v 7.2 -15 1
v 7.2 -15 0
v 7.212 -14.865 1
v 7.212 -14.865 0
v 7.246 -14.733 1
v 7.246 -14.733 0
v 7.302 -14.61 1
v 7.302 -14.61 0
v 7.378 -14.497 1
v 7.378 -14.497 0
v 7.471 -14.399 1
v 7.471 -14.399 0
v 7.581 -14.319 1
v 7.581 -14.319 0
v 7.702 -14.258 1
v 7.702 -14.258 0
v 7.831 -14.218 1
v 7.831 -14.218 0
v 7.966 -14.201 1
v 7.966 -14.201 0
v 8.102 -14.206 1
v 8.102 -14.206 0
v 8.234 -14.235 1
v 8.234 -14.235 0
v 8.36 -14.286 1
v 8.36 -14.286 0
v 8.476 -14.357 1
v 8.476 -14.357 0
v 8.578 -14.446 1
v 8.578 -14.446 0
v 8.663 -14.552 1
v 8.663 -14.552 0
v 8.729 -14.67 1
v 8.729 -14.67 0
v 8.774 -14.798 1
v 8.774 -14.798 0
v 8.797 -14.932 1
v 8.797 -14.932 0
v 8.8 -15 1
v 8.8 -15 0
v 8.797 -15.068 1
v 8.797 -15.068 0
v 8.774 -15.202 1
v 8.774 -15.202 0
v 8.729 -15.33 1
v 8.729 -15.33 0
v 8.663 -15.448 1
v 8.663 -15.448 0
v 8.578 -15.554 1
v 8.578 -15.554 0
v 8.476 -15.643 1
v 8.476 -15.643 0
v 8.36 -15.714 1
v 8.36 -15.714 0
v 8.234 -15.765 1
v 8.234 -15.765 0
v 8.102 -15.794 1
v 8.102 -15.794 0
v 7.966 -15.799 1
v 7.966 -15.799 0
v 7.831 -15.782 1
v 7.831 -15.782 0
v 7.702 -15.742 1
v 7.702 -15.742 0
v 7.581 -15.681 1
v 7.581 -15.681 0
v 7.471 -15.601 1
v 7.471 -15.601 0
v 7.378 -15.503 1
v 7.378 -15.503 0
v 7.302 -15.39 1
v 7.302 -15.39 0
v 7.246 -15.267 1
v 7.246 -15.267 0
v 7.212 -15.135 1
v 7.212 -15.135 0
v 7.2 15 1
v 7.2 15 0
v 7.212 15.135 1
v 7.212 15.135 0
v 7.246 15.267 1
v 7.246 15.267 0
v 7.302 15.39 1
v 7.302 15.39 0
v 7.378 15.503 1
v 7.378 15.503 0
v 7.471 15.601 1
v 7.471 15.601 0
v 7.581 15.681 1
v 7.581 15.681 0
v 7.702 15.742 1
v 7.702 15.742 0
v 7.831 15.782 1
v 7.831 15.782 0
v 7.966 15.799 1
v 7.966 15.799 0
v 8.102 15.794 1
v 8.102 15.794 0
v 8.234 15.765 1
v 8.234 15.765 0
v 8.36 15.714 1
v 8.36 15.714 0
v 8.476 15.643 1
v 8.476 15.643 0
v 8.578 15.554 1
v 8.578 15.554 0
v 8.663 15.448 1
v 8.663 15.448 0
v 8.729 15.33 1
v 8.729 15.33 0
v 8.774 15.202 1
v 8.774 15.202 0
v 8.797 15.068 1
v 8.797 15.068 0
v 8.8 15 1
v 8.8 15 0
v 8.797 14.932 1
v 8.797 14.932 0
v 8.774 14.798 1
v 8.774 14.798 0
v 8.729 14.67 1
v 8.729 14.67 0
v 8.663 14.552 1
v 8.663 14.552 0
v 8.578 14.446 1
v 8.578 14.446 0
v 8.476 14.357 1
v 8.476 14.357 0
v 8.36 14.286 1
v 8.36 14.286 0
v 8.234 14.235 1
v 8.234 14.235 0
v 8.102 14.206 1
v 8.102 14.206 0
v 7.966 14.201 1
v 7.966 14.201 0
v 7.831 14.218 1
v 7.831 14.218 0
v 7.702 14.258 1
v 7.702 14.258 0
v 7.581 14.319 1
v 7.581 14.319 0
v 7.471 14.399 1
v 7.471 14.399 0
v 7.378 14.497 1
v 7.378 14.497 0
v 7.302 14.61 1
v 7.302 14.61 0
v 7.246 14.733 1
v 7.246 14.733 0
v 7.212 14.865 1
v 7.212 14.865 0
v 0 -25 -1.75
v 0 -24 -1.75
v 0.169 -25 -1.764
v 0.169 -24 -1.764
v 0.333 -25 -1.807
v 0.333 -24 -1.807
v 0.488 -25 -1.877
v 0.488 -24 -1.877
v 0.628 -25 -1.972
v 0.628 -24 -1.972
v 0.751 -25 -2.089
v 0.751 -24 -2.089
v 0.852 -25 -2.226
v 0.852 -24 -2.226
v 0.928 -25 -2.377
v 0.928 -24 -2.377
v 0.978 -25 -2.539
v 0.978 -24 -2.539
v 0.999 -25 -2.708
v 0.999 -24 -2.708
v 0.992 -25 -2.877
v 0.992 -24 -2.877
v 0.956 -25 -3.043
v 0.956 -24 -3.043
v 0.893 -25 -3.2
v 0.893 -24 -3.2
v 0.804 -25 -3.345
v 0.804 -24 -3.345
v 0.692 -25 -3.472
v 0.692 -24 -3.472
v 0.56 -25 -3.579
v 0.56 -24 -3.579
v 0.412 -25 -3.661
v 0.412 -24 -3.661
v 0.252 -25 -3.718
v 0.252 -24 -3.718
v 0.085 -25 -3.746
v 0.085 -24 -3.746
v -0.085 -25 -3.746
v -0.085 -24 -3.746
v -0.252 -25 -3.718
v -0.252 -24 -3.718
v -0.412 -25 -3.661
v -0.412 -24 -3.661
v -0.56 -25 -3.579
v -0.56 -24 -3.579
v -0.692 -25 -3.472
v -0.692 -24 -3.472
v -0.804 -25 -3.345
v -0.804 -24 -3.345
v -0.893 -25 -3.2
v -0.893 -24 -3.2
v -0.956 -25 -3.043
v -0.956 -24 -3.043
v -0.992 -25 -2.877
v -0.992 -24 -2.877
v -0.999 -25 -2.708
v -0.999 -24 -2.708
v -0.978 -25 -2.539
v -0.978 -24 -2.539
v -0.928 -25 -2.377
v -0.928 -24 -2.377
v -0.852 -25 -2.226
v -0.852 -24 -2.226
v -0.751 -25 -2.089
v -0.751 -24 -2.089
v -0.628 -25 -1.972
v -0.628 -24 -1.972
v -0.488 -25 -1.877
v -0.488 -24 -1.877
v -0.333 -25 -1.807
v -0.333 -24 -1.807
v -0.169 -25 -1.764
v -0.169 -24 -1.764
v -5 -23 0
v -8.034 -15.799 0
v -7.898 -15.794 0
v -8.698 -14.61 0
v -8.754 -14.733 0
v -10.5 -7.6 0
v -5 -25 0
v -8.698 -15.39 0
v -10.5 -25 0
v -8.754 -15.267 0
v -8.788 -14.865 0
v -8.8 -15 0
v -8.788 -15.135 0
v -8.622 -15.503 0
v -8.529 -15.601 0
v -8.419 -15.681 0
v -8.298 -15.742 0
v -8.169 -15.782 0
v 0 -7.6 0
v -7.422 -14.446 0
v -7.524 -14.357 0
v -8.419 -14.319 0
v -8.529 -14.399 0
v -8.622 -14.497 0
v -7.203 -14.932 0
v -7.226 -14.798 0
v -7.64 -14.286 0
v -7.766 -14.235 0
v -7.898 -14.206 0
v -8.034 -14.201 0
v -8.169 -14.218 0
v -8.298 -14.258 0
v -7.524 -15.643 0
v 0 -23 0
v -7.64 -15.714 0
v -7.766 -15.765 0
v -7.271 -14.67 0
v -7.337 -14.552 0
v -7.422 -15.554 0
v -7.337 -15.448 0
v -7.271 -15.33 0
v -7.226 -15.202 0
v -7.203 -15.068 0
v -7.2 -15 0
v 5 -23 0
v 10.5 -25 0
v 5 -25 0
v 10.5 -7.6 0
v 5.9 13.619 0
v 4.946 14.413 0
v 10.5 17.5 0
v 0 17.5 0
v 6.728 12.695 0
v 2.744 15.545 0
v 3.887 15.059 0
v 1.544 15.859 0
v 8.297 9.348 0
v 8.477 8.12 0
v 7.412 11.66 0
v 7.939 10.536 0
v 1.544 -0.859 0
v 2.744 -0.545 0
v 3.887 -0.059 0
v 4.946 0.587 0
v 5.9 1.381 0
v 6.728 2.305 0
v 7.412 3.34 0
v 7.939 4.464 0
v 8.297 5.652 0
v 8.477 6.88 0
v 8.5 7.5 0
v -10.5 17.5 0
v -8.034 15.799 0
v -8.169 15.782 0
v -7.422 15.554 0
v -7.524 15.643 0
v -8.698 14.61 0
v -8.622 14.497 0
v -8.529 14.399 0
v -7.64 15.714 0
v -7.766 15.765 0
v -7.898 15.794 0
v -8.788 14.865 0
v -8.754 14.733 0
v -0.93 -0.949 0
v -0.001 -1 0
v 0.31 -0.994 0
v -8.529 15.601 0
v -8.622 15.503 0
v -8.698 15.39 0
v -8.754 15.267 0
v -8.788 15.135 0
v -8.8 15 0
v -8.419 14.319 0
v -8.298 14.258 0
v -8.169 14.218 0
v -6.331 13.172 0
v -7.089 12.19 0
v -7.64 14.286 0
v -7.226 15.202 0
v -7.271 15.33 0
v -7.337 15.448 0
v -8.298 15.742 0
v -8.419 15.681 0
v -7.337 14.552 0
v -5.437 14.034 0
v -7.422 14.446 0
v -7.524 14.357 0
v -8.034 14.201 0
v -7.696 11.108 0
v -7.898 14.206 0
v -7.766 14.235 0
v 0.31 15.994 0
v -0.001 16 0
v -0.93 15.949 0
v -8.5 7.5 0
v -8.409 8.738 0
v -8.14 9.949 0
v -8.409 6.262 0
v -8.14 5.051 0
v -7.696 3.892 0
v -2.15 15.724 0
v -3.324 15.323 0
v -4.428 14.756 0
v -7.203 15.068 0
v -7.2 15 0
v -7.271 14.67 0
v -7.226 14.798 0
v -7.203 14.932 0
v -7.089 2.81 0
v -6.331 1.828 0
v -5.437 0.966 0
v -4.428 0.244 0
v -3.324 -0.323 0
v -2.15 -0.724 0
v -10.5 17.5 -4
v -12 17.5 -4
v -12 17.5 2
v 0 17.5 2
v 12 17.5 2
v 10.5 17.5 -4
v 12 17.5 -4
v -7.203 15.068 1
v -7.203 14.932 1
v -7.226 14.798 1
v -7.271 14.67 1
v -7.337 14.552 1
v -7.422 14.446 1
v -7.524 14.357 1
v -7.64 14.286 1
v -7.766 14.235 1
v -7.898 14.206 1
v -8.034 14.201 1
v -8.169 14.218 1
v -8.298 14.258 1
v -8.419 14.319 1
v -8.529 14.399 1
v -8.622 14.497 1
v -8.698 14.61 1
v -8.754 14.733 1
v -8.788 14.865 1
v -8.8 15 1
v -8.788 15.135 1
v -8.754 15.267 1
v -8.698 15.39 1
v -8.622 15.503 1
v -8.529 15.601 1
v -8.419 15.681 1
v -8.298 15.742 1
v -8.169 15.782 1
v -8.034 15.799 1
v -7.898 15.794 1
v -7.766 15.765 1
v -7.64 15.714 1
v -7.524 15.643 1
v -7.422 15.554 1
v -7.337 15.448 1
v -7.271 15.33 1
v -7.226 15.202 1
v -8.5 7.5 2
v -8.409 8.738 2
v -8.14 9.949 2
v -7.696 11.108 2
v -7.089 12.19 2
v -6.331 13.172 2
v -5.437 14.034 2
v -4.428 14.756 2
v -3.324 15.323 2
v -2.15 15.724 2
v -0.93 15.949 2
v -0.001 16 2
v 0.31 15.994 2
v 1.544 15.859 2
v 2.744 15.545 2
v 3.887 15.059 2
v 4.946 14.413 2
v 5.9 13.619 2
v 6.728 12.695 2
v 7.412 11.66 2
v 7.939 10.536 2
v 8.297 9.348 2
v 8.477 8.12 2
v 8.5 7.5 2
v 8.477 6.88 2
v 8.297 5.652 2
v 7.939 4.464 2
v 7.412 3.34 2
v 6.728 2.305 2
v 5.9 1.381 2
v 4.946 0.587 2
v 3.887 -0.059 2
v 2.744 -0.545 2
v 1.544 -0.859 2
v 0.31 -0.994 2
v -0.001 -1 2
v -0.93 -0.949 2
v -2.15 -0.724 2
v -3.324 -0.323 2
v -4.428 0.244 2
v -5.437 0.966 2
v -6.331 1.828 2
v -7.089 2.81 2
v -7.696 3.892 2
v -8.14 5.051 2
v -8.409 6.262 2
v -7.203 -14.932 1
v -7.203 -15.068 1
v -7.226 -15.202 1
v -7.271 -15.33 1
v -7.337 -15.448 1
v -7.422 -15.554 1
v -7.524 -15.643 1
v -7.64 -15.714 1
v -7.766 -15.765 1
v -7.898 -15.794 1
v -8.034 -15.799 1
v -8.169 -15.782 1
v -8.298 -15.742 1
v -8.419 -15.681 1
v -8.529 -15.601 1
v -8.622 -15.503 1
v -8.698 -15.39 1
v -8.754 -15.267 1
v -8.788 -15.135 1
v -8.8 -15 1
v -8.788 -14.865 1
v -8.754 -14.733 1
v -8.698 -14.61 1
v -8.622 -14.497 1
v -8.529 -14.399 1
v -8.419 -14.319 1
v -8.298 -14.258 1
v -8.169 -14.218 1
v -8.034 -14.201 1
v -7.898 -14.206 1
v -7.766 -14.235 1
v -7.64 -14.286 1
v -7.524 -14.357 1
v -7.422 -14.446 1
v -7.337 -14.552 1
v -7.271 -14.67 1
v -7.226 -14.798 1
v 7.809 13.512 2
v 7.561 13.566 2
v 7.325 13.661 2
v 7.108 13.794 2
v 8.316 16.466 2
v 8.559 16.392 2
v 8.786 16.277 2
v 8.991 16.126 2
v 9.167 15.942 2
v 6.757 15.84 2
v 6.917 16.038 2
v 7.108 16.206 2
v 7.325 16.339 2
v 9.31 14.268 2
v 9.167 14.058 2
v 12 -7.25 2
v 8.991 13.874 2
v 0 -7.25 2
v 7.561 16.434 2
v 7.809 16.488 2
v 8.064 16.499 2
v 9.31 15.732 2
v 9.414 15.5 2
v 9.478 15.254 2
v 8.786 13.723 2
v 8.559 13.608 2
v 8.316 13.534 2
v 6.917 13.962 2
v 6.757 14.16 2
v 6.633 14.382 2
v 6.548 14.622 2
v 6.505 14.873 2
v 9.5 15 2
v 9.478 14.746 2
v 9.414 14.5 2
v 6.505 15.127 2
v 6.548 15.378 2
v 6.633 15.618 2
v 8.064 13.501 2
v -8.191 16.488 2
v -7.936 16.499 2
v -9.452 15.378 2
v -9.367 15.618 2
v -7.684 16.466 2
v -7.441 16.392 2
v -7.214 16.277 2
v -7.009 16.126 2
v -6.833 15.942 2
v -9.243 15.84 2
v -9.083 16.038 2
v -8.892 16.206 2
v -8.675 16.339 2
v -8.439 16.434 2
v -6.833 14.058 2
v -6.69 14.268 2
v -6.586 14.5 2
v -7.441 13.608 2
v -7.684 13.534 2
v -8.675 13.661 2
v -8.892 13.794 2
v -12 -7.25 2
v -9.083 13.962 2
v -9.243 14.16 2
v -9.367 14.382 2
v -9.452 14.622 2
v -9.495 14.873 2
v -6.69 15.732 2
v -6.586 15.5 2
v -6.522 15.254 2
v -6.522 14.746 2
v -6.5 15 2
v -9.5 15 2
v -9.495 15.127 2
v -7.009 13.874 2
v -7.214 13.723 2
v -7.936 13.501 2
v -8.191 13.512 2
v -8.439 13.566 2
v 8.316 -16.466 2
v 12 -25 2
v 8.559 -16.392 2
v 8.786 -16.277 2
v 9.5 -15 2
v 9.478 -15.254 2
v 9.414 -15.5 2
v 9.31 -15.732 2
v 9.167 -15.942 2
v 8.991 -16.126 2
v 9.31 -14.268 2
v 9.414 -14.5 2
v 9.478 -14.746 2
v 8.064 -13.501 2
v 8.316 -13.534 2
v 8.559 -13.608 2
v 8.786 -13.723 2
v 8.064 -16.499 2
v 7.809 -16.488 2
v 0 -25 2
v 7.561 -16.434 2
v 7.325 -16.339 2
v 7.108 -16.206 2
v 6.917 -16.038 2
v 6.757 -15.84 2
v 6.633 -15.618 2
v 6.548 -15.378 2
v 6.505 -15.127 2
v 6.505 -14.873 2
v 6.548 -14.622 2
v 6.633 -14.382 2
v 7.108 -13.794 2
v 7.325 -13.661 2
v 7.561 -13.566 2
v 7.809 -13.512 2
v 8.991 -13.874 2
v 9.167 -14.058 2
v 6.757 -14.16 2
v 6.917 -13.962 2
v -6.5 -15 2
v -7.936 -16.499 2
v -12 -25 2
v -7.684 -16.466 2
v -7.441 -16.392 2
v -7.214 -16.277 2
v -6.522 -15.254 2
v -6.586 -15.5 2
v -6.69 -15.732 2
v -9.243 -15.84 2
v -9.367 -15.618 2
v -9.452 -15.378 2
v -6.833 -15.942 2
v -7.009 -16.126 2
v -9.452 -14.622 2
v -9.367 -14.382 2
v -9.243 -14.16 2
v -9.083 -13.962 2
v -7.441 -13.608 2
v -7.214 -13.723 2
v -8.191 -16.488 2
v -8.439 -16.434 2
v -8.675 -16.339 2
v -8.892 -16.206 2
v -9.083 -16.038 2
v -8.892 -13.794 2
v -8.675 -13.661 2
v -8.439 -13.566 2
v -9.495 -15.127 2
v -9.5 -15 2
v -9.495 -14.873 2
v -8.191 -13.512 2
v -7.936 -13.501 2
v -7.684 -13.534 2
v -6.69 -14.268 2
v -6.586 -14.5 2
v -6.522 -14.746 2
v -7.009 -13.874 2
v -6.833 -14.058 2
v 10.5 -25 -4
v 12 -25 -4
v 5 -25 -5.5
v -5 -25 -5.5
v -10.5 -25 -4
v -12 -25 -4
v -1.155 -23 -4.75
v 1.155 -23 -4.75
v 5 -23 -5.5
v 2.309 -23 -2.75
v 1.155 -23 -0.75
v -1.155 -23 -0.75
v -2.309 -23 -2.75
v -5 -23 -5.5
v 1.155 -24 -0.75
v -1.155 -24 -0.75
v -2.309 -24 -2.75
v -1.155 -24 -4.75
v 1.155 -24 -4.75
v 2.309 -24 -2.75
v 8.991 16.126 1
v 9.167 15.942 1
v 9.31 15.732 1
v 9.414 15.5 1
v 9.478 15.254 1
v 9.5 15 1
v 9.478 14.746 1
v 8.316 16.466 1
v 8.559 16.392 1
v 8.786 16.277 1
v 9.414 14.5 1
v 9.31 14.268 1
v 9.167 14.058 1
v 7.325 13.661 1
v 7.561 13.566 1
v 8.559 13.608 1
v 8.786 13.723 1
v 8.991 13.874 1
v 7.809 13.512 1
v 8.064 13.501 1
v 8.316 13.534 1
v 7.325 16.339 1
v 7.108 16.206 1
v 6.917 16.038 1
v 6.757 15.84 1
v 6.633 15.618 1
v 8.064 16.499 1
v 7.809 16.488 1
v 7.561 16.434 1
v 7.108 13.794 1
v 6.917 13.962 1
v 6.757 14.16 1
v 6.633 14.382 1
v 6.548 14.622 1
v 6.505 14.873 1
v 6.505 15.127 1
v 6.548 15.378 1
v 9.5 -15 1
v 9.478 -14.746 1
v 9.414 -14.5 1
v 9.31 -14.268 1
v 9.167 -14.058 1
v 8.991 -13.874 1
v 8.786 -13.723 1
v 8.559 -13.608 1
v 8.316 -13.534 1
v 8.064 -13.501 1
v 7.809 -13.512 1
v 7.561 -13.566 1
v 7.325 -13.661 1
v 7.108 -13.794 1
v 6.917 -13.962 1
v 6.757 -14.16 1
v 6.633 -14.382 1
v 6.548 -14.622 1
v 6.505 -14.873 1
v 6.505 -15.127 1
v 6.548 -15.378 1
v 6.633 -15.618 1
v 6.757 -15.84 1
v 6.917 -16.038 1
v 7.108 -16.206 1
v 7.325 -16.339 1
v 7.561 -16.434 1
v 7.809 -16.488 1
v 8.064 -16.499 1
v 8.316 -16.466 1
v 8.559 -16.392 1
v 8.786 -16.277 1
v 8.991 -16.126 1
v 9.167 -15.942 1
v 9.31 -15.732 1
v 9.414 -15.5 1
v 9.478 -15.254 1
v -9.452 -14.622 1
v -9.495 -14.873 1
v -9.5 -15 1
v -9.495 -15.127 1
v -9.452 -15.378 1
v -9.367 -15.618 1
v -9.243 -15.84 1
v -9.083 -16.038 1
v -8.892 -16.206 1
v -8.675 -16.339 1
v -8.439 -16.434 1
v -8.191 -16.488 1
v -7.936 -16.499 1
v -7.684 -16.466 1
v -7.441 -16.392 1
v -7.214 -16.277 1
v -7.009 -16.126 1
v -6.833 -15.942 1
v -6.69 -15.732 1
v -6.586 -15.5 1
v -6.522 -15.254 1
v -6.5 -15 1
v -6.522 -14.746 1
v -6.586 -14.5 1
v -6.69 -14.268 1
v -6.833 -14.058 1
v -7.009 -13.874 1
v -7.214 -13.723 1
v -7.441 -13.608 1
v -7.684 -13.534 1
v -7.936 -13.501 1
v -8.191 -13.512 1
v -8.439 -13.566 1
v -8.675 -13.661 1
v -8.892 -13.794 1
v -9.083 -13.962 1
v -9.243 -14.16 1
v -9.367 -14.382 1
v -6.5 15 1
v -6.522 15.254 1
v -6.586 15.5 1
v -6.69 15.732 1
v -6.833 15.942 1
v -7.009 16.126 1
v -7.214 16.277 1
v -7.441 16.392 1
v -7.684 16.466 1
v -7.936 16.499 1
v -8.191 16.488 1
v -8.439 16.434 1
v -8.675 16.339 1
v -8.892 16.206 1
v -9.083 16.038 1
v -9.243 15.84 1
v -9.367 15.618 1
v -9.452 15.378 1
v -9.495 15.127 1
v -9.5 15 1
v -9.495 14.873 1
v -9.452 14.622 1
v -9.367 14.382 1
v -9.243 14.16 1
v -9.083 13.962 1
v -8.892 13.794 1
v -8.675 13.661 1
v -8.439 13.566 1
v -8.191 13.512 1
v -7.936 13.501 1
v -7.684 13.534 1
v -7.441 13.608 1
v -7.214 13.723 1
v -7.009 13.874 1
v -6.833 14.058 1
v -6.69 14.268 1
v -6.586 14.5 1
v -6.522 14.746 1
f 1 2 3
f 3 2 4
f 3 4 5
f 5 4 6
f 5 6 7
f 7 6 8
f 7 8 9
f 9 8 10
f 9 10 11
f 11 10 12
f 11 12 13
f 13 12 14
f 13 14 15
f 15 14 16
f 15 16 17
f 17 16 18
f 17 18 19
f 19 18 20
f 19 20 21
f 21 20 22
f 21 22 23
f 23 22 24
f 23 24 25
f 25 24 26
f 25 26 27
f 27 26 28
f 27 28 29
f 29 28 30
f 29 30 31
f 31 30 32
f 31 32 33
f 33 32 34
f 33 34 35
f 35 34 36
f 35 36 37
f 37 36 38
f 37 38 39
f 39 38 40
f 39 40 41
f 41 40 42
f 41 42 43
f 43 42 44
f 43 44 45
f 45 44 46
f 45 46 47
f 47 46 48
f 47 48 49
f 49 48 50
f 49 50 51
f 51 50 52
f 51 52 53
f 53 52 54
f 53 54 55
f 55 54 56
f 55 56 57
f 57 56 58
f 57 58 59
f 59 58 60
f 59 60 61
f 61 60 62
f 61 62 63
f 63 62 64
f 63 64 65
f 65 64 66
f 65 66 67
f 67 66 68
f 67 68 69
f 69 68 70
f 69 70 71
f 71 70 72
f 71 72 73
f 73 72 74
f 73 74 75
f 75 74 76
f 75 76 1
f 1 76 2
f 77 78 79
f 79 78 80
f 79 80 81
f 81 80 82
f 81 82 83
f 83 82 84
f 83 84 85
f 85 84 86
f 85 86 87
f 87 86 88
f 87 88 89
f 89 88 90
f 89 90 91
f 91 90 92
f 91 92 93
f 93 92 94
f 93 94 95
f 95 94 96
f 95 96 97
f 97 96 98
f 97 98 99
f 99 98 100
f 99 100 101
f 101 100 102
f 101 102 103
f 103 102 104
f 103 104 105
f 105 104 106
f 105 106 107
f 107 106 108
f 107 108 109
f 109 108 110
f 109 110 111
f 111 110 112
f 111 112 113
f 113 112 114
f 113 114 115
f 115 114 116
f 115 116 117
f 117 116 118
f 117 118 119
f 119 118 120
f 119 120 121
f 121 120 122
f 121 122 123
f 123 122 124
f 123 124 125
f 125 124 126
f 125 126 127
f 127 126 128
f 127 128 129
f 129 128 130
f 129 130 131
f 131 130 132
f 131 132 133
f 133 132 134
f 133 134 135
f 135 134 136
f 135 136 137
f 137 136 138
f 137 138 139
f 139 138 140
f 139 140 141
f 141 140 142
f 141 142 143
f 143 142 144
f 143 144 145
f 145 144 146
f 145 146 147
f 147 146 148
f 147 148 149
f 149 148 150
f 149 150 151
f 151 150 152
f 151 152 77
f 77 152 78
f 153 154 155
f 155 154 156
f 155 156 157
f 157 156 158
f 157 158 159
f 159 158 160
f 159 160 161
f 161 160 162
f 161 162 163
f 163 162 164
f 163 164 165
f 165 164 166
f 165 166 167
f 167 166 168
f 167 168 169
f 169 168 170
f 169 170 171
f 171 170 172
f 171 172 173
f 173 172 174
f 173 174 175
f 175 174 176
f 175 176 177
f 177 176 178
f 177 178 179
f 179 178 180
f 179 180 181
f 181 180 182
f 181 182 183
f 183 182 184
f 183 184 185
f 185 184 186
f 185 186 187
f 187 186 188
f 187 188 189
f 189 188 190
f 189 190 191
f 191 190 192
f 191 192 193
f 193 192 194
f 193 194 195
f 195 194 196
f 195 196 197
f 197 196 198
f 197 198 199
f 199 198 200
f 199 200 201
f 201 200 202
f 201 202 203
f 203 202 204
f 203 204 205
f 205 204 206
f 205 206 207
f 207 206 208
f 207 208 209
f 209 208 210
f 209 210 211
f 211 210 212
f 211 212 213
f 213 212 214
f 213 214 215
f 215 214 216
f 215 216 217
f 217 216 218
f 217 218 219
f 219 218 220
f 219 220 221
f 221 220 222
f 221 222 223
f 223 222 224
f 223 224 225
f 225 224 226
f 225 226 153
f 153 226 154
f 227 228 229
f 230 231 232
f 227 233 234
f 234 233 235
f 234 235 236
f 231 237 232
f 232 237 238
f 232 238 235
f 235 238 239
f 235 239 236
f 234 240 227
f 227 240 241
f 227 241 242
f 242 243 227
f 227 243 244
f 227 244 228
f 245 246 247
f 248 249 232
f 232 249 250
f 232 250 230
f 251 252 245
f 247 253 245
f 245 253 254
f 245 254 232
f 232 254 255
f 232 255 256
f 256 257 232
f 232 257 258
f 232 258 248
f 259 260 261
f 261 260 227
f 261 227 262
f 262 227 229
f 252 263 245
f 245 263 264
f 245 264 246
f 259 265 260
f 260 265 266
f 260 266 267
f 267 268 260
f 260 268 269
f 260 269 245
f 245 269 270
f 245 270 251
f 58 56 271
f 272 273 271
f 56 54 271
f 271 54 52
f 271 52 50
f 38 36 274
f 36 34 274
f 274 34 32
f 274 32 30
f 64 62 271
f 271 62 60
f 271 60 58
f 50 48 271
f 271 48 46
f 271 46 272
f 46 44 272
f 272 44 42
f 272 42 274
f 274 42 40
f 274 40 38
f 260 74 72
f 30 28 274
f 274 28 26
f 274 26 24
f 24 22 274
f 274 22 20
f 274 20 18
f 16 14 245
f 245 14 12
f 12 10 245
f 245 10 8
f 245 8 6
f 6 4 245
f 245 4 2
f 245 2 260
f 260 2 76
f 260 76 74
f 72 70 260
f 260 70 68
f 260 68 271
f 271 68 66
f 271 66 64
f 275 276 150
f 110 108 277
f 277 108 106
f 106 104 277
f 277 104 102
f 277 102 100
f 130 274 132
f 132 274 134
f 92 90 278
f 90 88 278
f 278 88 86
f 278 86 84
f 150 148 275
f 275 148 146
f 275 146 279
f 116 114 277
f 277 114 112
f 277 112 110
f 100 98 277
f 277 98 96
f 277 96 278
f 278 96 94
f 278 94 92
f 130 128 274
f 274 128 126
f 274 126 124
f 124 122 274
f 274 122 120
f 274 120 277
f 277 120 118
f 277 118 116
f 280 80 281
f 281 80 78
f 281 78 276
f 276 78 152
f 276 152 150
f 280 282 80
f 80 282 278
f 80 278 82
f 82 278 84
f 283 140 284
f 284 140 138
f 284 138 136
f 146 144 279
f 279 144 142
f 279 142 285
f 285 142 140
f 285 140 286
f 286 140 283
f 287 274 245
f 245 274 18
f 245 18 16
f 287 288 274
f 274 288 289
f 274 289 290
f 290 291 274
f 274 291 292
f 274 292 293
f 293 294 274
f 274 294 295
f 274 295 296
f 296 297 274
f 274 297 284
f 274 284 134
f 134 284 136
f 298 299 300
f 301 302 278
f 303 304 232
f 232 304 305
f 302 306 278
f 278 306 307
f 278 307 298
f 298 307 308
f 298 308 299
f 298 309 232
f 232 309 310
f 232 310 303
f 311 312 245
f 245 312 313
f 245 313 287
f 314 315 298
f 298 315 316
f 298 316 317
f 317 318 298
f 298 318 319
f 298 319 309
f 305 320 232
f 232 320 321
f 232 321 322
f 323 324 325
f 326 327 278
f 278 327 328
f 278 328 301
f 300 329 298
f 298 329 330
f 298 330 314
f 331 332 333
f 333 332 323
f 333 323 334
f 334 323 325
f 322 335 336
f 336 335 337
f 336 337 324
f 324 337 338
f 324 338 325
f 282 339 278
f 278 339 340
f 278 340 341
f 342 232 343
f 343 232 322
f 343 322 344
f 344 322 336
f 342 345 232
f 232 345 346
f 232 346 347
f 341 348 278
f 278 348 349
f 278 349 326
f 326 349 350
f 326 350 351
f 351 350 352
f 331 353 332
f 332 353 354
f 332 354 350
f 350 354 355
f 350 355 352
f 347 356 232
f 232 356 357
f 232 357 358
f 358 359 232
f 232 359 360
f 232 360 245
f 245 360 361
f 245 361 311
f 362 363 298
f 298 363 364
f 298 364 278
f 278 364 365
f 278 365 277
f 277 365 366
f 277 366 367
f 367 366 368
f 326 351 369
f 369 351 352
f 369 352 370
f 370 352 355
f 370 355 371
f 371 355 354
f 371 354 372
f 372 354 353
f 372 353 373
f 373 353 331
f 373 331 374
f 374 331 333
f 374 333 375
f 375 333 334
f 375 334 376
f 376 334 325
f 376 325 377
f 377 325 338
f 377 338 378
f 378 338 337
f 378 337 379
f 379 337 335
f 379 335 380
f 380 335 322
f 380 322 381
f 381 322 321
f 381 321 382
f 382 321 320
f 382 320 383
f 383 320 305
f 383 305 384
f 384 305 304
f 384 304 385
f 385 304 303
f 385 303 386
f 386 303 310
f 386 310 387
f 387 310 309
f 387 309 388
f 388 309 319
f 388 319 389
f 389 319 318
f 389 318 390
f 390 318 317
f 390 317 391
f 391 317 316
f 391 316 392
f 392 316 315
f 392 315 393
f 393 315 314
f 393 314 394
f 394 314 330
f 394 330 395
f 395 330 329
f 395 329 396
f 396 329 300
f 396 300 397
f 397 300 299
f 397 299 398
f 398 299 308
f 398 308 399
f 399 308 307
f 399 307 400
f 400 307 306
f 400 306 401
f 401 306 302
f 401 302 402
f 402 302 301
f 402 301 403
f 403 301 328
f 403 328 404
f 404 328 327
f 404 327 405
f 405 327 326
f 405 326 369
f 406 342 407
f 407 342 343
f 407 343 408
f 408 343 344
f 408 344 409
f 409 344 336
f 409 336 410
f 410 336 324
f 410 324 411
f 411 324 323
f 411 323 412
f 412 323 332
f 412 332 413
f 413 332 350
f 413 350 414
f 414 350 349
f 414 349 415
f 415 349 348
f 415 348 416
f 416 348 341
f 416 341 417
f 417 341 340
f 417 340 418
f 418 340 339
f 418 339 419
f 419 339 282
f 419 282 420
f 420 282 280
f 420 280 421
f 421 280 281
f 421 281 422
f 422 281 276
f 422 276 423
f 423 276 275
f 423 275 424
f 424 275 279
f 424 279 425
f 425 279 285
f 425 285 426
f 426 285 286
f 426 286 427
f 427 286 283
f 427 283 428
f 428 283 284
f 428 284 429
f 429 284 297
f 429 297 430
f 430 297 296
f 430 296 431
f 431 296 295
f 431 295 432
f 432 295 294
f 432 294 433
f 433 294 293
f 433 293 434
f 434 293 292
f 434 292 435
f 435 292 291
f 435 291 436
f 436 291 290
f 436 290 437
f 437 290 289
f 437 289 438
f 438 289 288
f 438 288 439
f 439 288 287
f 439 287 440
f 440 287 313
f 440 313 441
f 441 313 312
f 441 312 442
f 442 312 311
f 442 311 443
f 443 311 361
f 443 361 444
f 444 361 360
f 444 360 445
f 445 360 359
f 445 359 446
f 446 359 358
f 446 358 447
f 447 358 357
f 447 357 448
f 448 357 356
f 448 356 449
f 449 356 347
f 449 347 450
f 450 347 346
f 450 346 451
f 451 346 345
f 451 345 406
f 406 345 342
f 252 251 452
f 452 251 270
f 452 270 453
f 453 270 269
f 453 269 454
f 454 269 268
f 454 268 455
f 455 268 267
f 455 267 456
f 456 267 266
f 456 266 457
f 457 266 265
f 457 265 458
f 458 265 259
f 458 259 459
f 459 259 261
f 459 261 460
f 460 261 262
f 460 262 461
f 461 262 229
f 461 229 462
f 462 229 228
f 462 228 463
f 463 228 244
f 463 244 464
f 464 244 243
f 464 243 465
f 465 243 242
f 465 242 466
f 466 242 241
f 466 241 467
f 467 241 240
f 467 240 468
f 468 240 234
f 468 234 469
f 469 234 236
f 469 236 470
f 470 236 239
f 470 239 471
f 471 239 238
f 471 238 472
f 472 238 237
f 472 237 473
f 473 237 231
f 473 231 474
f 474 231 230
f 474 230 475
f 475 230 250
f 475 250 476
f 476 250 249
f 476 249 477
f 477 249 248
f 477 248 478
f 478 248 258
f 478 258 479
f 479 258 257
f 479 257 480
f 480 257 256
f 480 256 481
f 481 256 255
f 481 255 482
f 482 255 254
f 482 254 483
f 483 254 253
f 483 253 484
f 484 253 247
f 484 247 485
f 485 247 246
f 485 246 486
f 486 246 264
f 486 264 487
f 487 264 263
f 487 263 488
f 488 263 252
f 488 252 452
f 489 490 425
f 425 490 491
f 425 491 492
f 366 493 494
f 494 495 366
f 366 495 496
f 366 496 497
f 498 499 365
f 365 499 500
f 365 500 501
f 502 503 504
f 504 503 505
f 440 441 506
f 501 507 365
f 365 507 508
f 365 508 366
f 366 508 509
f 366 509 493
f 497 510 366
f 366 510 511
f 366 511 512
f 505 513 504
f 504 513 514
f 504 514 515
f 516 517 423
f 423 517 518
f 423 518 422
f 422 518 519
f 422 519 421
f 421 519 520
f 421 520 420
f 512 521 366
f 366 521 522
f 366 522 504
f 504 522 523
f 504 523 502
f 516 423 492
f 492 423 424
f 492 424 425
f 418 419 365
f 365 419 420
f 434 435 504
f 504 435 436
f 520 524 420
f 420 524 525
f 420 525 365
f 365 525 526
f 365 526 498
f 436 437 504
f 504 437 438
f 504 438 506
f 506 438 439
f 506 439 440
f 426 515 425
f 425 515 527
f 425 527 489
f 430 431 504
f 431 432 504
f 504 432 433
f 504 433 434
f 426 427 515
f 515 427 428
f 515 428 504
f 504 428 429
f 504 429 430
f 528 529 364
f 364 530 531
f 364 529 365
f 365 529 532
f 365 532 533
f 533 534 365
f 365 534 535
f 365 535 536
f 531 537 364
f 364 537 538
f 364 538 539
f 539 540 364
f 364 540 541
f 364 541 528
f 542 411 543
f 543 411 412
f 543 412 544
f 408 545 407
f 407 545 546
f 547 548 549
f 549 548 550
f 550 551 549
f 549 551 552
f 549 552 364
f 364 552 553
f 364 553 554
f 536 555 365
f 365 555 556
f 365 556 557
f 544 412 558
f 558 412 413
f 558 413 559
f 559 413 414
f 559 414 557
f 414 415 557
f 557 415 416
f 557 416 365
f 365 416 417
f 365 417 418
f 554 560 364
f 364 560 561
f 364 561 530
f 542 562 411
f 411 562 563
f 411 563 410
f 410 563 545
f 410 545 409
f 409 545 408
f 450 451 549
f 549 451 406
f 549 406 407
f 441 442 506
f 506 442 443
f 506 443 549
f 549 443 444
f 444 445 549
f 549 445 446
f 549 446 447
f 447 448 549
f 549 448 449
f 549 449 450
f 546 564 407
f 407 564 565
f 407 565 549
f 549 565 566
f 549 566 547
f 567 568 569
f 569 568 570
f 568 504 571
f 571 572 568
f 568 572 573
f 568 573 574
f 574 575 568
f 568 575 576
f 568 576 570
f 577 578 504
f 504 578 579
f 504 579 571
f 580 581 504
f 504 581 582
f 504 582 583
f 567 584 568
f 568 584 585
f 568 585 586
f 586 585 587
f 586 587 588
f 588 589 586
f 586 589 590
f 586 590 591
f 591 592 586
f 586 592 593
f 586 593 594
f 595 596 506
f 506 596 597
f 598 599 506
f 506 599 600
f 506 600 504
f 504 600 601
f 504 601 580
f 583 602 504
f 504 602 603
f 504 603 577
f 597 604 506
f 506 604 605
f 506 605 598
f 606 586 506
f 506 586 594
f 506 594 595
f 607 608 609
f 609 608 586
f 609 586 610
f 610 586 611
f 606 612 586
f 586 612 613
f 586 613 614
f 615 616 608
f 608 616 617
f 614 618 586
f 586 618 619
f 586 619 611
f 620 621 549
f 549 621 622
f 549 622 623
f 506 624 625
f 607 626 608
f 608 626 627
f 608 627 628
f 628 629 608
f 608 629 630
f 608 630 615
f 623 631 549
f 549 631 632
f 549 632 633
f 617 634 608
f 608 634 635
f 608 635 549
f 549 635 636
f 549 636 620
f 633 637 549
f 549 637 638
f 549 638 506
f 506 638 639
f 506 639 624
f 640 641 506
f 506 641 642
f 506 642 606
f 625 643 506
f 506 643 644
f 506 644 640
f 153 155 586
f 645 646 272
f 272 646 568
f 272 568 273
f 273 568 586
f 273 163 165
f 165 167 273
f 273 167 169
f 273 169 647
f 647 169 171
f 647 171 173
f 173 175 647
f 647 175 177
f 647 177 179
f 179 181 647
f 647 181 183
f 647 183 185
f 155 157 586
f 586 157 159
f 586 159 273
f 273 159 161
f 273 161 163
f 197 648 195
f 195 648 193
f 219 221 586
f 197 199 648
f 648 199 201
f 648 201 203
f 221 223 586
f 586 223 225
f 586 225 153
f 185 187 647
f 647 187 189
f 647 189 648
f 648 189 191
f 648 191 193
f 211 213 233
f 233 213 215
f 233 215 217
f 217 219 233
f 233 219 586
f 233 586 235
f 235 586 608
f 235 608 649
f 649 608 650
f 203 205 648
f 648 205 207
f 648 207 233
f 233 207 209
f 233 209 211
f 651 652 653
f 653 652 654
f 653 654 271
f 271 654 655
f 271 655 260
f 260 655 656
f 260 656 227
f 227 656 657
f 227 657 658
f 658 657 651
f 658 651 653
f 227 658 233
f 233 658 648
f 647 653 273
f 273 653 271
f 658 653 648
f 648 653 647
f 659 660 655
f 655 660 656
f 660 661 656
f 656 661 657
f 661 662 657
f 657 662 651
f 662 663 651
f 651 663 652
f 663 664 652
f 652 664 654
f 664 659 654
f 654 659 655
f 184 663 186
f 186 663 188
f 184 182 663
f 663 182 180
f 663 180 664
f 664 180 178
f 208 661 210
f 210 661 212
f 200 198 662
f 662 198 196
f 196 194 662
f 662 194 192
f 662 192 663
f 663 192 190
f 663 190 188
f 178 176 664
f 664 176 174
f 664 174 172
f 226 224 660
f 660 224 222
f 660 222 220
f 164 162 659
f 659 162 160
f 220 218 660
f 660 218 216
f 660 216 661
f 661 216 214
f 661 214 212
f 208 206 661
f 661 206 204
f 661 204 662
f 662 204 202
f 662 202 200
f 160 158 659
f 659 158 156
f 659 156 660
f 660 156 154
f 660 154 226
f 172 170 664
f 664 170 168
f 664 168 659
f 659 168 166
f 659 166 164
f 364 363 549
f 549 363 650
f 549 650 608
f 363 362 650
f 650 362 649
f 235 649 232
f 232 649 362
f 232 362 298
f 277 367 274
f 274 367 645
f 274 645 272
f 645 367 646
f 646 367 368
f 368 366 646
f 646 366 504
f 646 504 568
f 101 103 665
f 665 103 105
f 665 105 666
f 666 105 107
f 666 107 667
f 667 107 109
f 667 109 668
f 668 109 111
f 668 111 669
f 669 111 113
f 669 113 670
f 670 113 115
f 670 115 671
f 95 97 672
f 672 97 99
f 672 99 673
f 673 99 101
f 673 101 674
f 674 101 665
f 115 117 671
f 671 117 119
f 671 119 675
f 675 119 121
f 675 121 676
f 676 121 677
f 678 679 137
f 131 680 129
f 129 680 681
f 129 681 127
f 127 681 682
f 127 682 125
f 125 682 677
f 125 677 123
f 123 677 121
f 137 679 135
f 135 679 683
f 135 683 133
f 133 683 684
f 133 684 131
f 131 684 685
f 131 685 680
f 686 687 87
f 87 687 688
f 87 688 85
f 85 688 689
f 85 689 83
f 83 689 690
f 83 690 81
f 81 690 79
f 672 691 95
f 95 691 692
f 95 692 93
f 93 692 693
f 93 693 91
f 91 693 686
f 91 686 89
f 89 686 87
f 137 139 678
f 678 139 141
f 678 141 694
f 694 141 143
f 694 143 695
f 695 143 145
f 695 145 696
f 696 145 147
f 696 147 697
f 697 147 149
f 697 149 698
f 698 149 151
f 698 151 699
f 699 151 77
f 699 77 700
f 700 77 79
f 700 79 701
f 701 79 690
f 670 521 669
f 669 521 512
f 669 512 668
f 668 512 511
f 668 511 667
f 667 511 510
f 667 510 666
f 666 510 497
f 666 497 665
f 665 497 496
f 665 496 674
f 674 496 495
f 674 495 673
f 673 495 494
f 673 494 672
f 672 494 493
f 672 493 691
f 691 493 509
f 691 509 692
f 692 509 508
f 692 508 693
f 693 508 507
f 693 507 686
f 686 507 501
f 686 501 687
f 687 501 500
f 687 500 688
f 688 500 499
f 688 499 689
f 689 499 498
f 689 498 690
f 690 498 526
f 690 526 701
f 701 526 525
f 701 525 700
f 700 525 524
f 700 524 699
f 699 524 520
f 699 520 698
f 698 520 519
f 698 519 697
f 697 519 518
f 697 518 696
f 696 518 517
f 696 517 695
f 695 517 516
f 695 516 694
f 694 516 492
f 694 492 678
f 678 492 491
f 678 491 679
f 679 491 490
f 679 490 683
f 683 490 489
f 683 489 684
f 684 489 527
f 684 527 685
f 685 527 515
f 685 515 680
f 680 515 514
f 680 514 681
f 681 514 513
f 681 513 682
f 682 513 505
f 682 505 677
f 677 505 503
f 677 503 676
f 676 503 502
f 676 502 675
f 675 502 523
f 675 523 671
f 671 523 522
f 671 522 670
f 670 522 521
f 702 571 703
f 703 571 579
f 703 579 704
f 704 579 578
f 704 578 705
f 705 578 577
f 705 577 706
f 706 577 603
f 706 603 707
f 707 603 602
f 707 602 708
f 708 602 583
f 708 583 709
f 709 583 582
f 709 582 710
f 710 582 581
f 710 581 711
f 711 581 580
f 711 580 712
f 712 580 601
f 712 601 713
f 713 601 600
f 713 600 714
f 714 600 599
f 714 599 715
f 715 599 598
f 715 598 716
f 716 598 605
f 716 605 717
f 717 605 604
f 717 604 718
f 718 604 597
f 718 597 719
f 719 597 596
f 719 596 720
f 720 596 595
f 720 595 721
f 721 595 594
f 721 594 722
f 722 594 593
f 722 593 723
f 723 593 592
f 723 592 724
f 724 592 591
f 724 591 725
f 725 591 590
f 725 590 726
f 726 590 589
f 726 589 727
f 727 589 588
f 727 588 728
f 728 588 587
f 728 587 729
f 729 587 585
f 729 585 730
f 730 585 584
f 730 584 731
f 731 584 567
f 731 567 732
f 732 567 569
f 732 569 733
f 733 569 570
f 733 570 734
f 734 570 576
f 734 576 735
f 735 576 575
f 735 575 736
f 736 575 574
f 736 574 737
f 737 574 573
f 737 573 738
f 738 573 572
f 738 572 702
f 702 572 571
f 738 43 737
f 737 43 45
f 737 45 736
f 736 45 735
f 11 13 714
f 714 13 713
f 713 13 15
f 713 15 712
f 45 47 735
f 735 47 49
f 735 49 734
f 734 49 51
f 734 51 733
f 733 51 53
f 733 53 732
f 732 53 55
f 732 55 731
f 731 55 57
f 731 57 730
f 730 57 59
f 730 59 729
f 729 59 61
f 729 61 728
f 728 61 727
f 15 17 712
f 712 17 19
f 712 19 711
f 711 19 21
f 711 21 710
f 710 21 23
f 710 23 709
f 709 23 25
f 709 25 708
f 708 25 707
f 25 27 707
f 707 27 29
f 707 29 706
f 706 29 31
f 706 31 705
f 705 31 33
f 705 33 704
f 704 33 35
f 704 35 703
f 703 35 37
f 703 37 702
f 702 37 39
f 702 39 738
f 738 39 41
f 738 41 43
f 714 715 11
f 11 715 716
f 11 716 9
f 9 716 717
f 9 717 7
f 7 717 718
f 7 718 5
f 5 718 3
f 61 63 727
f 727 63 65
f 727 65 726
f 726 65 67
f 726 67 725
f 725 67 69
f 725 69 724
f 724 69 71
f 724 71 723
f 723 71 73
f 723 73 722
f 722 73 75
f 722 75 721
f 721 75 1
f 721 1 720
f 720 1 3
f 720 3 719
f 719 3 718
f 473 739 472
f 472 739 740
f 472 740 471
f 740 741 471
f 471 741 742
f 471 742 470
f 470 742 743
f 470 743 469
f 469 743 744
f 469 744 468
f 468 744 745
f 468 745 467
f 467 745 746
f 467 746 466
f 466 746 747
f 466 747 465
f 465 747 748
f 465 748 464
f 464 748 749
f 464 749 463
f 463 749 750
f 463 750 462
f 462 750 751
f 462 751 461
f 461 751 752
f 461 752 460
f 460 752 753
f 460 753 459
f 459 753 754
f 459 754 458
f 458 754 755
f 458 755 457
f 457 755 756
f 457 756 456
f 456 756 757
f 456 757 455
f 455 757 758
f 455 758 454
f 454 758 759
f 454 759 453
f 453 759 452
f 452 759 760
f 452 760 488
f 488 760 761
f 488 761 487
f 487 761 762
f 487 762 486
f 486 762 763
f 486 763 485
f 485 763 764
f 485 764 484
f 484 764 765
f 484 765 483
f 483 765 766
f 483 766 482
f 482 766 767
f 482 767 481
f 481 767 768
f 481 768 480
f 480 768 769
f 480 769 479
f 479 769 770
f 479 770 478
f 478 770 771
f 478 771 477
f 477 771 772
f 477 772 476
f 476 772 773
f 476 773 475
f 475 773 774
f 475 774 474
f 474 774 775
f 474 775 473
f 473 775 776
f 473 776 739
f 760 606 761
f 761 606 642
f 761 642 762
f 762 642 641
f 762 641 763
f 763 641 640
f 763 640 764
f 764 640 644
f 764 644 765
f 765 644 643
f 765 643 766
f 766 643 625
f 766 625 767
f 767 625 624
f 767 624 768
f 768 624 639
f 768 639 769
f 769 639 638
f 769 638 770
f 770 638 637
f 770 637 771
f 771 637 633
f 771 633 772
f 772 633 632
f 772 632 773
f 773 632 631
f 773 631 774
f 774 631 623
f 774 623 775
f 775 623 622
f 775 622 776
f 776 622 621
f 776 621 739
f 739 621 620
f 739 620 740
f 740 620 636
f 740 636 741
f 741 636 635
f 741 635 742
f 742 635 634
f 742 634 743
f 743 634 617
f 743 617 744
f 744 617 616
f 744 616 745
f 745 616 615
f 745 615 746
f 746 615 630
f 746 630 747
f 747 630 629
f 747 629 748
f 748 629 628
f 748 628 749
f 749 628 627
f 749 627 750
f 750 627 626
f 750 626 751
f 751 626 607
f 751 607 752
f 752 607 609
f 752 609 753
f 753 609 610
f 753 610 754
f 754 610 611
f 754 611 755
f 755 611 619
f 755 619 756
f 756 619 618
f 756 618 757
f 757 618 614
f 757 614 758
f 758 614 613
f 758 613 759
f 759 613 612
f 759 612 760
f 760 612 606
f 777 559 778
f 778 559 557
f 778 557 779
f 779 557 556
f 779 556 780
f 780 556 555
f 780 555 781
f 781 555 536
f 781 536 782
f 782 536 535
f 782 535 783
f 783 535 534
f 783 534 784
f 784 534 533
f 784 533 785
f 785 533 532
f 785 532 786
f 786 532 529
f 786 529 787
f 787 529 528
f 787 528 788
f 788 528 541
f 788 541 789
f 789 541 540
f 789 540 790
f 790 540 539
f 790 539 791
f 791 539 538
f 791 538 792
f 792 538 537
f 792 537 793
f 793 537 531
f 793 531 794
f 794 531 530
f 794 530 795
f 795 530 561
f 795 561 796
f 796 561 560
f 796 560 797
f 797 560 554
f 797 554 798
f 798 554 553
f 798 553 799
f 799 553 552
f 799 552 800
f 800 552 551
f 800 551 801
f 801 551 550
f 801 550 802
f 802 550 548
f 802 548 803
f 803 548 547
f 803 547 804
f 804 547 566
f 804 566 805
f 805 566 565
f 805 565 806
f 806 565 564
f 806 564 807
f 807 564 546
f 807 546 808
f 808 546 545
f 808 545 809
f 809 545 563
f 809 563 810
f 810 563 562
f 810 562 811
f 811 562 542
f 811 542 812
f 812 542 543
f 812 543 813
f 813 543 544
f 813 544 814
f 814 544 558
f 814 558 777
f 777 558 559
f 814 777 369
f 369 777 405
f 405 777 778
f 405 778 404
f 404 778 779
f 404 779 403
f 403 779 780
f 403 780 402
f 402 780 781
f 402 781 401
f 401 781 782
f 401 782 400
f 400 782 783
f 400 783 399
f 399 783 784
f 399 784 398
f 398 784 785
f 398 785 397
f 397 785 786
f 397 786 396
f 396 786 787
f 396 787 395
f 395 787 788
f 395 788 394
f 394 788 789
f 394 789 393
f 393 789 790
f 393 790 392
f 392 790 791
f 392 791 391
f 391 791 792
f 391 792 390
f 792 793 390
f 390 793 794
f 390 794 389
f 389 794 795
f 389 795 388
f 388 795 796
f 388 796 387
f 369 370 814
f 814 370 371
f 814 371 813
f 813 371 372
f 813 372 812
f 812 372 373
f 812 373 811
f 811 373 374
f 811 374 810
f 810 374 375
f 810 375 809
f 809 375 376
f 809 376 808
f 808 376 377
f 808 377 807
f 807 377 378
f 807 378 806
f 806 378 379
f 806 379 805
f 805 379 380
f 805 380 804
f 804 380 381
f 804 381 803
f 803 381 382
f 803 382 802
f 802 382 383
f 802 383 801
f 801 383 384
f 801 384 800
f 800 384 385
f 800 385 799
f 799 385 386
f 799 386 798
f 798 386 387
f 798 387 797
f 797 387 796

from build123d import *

# Parameters (mm, degrees)
SKETCH1_W                  = 21
SKETCH1_H                  = 35
SKETCH1_R                  = 0.8
SKETCH1_R_2                = 8.5
BRACKETWITHBOLTHOLES_DEPTH = 2
SKETCH2_W                  = 10
SKETCH2_H                  = 2
BRACKETEXTENSION_DEPTH     = 2
SKETCH2_3_W                = 10
SKETCH2_3_H                = 2
BASE_DEPTH                 = 7.5
SKETCH3_R                  = 1
BASEBOLTHOLE_DEPTH         = 3
BASENUTSLOT_DEPTH          = 1
STIFFENERRIB_DEPTH         = 42.5
SKETCH5_R                  = 1.5
BOLTHATSLOTS_DEPTH         = 1


with BuildPart() as part:
    # Sketch1 → BracketWithBoltHoles (new body)
    with BuildSketch(Plane.XY):
        Rectangle(SKETCH1_W, SKETCH1_H)
        with Locations((-8, 15)):
            Circle(SKETCH1_R, mode=Mode.SUBTRACT)
        with Locations((8, 15)):
            Circle(SKETCH1_R, mode=Mode.SUBTRACT)
        with Locations((8, -15)):
            Circle(SKETCH1_R, mode=Mode.SUBTRACT)
        with Locations((-8, -15)):
            Circle(SKETCH1_R, mode=Mode.SUBTRACT)
        with Locations((0, 7.5)):
            Circle(SKETCH1_R_2, mode=Mode.SUBTRACT)
    extrude(amount=BRACKETWITHBOLTHOLES_DEPTH)

    # Sketch2 → BracketExtension (add)
    with BuildSketch(Plane.XY.offset(2)):
        Polygon((10.5, -17.5), (-10.5, -17.5), (-10.5, -25), (-5, -25), (-5, -23), (5, -23), (5, -25), (10.5, -25), align=None)
        with Locations((0, -24)):
            Rectangle(SKETCH2_W, SKETCH2_H)
    extrude(amount=-BRACKETEXTENSION_DEPTH)

    # Sketch2<3> → Base (add)
    with BuildSketch(Plane.XY.offset(2)):
        with Locations((0, -24)):
            Rectangle(SKETCH2_3_W, SKETCH2_3_H)
    extrude(amount=-BASE_DEPTH)

    # Sketch3 → BaseBoltHole (cut, through all)
    with BuildSketch(Plane(origin=(0, -23, 0), x_dir=(1, 0, 0), z_dir=(0, 1, 0))):
        with Locations((0, 2.75)):
            Circle(SKETCH3_R)
    extrude(amount=-BASEBOLTHOLE_DEPTH, mode=Mode.SUBTRACT)

    # Sketch3<3> → BaseNutSlot (cut)
    with BuildSketch(Plane(origin=(0, -23, 0), x_dir=(1, 0, 0), z_dir=(0, 1, 0))):
        Polygon((2.309401077, 2.75), (1.154700538, 4.75), (-1.154700538, 4.75), (-2.309401077, 2.75), (-1.154700538, 0.75), (1.154700538, 0.75), align=None)
    extrude(amount=-BASENUTSLOT_DEPTH, mode=Mode.SUBTRACT)

    # Sketch4 → StiffenerRib (add)
    with BuildSketch(Plane(origin=(0, 17.5, 0), x_dir=(1, 0, 0), z_dir=(0, 1, 0))):
        Polygon((-10.5, 4), (-12, 4), (-12, -2), (-10.5, -2), (-10.5, 0), align=None)
    stiffenerrib = extrude(amount=-STIFFENERRIB_DEPTH)

    # StiffenerRib2: StiffenerRib across plane
    add(stiffenerrib.mirror(Plane(origin=(0, 0, 0), x_dir=(0, 0, 1), z_dir=(1, 0, 0))))

    # Sketch5 → BoltHatSlots (cut)
    with BuildSketch(Plane.XY.offset(2)):
        with Locations((8, 15)):
            Circle(SKETCH5_R)
        with Locations((8, -15)):
            Circle(SKETCH5_R)
        with Locations((-8, -15)):
            Circle(SKETCH5_R)
        with Locations((-8, 15)):
            Circle(SKETCH5_R)
    extrude(amount=-BOLTHATSLOTS_DEPTH, mode=Mode.SUBTRACT)


solid = part.part
